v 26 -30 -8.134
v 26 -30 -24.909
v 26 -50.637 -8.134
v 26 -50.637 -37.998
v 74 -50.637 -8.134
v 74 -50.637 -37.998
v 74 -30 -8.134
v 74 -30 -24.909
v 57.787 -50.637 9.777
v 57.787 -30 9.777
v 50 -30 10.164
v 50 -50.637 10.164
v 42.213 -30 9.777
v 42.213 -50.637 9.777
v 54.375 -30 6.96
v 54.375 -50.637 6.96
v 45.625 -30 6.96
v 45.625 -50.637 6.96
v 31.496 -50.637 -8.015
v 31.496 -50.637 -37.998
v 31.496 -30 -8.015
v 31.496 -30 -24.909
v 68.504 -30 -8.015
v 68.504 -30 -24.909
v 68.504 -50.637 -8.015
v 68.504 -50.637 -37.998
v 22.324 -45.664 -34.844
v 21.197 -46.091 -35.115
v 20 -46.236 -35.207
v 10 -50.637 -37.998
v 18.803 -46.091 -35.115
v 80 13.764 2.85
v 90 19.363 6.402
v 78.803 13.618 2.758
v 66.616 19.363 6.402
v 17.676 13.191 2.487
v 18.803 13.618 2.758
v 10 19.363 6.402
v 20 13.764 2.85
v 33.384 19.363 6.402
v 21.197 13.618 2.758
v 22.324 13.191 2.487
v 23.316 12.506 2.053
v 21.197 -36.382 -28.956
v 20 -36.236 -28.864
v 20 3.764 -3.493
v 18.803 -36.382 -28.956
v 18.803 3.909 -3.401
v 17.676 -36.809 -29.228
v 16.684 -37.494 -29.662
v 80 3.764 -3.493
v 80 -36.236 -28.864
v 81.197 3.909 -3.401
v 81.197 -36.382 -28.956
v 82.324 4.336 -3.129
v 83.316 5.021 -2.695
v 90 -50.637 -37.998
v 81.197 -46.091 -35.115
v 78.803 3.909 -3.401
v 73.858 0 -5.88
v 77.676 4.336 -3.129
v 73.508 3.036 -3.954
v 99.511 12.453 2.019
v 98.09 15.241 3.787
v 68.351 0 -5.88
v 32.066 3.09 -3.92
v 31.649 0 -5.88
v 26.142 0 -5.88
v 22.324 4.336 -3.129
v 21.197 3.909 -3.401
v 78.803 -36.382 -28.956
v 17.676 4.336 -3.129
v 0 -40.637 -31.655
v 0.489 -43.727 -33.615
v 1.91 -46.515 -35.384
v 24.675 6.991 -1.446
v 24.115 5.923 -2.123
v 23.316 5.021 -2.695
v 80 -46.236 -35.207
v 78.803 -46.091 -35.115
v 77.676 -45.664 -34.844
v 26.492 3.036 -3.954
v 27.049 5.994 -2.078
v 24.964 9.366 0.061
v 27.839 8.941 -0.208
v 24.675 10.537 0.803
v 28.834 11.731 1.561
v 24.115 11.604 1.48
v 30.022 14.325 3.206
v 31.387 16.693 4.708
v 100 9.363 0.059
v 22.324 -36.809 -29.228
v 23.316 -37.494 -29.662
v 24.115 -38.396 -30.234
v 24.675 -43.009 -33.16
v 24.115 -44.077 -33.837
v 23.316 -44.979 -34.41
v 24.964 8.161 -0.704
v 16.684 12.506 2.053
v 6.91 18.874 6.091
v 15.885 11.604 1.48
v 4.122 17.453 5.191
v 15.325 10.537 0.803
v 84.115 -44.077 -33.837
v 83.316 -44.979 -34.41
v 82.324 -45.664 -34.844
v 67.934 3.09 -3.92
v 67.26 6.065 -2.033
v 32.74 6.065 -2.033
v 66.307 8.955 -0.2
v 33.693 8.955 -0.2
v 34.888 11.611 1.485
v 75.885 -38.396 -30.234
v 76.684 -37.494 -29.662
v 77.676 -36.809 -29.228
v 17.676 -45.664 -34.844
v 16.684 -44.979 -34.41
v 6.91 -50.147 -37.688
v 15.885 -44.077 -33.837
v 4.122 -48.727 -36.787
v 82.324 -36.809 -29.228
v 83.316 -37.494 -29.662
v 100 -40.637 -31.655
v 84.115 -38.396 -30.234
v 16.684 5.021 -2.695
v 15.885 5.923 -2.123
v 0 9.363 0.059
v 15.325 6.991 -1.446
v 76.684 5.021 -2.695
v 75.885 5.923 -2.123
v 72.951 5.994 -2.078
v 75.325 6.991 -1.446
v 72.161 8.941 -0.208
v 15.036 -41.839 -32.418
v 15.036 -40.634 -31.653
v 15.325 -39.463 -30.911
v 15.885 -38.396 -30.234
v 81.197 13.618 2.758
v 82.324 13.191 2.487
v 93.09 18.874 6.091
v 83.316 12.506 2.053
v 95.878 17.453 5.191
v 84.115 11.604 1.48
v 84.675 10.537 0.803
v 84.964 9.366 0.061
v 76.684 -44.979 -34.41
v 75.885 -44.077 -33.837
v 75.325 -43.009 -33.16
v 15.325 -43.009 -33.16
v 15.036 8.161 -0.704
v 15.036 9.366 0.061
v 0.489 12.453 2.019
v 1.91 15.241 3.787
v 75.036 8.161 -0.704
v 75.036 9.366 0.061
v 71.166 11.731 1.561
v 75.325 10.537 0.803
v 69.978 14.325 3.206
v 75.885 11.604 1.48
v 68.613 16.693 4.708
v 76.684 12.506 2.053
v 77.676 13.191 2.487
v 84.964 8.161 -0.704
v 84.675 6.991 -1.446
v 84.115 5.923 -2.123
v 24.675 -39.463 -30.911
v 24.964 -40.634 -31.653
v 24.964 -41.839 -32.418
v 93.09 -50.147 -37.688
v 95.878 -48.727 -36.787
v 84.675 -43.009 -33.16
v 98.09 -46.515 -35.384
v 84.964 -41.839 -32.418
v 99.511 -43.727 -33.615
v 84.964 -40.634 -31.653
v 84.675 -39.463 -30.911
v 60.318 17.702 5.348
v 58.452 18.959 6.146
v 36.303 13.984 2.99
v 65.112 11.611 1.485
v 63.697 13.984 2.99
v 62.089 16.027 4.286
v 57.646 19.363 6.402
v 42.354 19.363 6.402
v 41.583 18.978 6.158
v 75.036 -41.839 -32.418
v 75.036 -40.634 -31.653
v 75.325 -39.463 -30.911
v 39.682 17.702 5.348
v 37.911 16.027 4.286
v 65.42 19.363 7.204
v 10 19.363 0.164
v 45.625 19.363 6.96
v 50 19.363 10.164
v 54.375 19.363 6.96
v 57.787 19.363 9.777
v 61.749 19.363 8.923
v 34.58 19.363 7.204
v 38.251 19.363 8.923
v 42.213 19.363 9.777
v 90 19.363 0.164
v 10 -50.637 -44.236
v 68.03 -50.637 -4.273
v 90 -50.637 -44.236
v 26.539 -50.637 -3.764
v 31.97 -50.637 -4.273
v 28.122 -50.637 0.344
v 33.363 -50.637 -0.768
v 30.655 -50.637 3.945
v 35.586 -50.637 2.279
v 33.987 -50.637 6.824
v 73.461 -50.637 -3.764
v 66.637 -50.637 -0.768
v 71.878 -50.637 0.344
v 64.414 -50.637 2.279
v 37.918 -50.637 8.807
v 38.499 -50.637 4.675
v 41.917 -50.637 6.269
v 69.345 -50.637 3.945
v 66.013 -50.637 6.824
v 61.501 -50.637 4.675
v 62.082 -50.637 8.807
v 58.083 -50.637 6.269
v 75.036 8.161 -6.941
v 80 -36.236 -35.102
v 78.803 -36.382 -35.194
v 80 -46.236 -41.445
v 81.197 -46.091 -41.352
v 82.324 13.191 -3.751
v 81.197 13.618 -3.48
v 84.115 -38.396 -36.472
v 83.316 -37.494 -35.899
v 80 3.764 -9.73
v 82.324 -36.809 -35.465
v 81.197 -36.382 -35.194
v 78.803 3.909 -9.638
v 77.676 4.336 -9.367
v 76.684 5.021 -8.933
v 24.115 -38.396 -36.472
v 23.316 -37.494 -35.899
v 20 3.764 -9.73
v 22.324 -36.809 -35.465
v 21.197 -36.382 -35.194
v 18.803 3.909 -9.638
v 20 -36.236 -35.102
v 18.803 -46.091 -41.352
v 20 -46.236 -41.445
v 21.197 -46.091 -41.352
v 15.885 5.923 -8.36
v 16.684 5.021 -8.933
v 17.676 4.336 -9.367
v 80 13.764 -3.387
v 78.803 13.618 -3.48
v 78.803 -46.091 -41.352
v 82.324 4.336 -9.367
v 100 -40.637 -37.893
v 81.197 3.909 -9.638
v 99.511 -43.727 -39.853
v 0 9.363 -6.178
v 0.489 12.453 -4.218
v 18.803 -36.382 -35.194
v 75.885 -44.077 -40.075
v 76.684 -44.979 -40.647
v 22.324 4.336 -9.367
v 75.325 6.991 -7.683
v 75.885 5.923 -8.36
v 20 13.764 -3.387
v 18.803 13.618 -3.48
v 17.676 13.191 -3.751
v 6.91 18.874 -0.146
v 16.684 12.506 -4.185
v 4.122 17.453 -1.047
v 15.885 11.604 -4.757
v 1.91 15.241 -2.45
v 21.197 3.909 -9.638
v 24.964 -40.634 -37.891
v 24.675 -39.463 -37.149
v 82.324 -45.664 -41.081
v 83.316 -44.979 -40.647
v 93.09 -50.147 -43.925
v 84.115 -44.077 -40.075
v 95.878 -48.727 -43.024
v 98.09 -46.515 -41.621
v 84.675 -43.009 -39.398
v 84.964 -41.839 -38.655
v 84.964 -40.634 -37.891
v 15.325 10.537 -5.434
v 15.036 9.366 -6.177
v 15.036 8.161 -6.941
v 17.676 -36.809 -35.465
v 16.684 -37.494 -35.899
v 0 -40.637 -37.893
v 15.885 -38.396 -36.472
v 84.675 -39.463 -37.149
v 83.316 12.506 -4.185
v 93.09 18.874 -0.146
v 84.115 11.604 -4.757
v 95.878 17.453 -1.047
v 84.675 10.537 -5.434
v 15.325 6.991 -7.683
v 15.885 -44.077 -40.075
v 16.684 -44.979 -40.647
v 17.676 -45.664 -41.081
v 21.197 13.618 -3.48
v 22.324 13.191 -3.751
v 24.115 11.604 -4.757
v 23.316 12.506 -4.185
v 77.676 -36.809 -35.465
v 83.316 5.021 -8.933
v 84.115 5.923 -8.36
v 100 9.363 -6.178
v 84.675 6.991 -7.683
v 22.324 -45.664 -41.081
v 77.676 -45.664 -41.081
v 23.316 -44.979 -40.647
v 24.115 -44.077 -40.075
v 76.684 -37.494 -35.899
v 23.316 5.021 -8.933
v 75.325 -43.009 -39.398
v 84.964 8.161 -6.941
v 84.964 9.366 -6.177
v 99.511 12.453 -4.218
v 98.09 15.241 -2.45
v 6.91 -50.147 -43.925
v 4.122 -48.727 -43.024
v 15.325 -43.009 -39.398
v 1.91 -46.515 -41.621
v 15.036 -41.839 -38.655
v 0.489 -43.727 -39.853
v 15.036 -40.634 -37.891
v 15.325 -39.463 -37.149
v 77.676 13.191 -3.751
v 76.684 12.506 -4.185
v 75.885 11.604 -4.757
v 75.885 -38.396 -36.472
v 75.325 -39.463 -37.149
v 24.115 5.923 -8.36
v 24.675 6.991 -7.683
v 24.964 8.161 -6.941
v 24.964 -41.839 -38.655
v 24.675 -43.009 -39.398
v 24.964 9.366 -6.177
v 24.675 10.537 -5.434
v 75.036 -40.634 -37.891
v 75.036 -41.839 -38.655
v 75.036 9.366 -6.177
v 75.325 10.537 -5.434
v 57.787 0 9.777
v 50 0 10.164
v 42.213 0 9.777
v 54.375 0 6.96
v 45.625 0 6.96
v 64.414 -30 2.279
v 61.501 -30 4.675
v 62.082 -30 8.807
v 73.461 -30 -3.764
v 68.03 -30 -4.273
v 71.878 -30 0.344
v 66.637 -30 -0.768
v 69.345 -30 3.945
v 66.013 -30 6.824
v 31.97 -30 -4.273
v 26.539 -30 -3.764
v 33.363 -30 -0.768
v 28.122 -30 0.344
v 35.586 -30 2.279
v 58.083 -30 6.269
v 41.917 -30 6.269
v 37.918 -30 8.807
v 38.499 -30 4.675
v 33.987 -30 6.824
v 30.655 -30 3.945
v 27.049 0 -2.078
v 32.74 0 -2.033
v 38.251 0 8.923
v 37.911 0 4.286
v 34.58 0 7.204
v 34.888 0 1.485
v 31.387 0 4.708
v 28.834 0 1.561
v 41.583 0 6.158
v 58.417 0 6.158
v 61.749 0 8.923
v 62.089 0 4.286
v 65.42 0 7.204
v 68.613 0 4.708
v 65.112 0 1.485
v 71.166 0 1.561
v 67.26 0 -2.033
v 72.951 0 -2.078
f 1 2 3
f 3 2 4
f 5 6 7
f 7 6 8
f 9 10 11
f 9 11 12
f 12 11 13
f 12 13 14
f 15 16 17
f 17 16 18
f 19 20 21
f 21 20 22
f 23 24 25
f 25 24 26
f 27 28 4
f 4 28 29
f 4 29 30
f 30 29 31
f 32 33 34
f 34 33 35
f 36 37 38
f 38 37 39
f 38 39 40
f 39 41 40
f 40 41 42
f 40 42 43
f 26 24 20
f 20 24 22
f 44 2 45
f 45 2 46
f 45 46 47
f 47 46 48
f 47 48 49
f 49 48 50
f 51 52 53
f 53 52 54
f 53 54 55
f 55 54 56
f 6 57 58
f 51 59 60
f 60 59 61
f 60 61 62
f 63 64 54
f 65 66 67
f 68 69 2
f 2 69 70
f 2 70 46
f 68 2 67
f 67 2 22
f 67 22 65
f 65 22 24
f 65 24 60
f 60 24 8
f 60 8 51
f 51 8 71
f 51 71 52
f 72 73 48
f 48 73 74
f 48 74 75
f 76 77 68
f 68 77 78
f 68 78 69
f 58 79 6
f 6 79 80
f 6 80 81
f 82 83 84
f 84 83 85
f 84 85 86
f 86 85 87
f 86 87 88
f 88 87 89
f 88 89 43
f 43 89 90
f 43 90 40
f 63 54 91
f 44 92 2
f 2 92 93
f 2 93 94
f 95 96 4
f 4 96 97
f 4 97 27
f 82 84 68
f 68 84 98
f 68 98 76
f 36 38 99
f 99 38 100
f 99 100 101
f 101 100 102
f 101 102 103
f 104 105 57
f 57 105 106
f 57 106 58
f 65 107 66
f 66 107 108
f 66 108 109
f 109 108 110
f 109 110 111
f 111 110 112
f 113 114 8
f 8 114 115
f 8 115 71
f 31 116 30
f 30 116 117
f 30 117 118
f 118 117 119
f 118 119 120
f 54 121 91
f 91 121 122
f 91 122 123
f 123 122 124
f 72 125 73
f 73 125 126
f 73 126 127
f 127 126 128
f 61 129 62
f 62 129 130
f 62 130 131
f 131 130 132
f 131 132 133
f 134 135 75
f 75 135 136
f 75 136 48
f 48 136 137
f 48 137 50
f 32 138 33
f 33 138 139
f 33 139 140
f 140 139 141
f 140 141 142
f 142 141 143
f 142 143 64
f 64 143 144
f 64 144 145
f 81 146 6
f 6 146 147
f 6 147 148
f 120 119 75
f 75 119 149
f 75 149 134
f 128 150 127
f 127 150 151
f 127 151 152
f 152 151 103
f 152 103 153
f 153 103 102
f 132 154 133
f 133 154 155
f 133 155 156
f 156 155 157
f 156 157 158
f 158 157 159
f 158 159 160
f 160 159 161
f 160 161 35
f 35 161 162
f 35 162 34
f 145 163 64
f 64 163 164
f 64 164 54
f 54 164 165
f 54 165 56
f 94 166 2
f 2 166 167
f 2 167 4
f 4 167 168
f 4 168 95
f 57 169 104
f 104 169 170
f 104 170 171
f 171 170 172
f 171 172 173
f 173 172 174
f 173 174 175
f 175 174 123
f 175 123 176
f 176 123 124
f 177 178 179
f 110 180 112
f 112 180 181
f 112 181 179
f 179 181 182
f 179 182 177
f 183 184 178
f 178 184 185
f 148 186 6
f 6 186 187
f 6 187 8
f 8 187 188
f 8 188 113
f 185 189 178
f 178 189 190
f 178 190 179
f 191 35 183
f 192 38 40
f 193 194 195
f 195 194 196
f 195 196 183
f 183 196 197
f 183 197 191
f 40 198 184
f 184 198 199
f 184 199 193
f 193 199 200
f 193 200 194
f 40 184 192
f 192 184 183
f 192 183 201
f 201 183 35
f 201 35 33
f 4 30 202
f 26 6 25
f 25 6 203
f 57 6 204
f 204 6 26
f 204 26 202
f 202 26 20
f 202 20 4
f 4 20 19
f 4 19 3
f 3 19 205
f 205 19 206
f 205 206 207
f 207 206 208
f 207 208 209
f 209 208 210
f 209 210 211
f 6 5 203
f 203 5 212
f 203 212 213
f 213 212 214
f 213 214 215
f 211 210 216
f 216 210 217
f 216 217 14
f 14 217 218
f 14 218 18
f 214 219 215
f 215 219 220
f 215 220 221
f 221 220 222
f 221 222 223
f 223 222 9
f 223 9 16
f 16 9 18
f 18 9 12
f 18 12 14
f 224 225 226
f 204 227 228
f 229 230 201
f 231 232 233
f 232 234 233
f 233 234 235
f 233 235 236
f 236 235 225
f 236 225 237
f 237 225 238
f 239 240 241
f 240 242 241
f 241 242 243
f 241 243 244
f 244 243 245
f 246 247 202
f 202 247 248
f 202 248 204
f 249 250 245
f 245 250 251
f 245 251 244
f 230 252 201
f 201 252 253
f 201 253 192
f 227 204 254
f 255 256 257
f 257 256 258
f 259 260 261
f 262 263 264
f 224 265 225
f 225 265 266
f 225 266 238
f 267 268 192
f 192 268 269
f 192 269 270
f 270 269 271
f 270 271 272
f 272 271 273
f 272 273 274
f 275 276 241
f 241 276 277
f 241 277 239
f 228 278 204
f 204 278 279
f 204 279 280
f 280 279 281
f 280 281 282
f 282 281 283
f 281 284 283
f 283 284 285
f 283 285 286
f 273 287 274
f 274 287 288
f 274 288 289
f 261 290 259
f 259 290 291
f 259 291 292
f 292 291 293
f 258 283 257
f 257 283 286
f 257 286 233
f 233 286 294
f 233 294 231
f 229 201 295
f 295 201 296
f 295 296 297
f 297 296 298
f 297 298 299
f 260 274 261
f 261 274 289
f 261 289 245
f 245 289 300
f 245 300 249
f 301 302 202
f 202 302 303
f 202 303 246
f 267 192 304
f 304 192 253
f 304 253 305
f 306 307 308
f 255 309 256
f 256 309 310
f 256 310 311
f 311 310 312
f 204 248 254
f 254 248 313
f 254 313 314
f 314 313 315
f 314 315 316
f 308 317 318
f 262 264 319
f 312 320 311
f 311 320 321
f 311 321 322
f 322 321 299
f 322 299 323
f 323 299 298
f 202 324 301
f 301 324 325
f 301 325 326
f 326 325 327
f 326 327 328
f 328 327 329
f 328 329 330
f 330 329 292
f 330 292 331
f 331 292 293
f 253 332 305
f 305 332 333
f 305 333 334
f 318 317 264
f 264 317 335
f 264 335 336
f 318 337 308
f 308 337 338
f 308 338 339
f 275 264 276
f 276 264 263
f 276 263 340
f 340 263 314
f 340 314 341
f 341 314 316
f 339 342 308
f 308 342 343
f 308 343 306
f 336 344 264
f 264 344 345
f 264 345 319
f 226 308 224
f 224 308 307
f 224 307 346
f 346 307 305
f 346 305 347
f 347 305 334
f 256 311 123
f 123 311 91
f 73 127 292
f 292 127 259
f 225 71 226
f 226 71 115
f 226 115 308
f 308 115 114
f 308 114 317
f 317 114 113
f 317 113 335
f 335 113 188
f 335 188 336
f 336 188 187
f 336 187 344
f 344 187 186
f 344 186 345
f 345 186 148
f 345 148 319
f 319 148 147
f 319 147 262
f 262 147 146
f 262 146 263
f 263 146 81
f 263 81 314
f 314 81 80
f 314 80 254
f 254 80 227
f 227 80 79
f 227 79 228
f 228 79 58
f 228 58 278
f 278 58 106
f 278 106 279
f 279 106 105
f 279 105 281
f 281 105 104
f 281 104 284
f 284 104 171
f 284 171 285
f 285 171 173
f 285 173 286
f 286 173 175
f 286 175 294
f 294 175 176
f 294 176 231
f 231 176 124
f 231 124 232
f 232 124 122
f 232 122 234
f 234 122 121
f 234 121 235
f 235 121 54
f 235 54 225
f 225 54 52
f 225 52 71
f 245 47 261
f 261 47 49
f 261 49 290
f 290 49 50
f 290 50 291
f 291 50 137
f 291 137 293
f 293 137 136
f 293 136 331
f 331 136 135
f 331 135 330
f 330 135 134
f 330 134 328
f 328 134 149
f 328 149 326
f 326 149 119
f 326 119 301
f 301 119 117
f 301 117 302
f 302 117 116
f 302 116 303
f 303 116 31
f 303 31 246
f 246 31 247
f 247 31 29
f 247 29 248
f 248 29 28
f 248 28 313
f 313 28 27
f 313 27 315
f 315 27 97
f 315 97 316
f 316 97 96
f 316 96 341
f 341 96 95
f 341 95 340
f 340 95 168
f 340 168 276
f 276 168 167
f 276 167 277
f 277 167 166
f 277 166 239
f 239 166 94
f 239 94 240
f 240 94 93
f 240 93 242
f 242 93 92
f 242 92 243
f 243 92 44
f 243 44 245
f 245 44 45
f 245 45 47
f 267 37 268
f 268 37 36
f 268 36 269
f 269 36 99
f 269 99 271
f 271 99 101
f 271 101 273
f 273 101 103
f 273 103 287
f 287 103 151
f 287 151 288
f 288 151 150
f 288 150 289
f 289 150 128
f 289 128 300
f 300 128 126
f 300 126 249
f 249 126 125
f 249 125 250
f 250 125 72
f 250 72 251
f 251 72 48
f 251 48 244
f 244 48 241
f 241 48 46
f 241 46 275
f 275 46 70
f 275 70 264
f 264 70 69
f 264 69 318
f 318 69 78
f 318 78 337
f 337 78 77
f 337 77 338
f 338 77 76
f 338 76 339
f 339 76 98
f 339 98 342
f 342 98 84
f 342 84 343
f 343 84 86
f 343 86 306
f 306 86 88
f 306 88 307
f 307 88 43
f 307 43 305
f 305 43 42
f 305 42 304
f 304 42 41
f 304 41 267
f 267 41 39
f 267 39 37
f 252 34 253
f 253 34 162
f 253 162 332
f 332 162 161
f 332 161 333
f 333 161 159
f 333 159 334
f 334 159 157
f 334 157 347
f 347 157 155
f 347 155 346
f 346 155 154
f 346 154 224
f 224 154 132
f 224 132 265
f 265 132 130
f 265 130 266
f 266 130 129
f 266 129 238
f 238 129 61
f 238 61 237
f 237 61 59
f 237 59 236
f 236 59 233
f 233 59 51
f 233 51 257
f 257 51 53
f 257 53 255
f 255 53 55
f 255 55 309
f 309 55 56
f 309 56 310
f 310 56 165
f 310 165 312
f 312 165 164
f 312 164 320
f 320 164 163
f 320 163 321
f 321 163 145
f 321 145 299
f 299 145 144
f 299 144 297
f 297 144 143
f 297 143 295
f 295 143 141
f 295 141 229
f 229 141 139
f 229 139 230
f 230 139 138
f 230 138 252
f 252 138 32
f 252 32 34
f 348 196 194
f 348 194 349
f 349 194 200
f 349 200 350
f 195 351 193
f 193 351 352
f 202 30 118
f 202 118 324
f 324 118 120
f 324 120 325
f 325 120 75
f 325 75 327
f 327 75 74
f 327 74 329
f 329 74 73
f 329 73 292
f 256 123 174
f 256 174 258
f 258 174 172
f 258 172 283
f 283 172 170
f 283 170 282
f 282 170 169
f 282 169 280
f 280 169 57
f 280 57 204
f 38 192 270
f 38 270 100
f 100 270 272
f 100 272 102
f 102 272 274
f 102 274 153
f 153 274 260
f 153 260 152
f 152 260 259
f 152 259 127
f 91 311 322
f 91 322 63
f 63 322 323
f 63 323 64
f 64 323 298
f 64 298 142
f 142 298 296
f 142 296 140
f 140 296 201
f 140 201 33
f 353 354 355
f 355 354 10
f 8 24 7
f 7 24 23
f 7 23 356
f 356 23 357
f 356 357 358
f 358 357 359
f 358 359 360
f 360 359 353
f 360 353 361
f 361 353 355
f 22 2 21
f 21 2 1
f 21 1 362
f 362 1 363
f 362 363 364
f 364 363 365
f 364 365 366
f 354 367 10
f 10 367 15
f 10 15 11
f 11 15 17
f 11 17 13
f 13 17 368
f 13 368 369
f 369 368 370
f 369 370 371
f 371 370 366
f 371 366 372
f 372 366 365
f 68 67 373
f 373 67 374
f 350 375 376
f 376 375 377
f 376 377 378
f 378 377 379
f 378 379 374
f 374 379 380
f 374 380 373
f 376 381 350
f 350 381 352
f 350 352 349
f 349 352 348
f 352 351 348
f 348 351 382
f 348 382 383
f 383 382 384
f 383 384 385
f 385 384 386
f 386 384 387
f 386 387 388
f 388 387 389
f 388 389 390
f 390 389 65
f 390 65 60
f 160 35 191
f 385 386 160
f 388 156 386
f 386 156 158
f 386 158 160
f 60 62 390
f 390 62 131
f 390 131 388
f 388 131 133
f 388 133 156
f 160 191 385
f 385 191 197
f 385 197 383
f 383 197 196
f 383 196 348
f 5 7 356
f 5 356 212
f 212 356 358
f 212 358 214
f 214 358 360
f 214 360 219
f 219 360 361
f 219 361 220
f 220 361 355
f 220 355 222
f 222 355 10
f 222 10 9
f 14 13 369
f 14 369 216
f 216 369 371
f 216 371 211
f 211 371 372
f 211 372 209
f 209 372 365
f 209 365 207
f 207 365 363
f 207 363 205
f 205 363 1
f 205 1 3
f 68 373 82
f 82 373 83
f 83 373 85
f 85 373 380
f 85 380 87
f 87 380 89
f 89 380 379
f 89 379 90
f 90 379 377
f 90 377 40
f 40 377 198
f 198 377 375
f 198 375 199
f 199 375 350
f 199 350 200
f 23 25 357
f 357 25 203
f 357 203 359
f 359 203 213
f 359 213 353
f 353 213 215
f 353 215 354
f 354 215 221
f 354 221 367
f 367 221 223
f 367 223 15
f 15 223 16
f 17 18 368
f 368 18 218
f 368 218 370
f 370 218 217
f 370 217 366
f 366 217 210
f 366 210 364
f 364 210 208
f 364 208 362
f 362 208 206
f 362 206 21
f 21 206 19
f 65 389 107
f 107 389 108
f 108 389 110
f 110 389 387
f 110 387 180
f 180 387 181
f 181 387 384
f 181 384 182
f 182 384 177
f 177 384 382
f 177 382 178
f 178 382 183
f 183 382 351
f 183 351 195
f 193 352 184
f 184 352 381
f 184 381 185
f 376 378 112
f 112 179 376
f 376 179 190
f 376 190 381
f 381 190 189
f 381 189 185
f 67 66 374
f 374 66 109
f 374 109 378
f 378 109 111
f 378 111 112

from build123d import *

# Parameters (mm, degrees)
BOSS_EXTRUDE1_DEPTH = 100
SKETCH2_R           = 5
CUT_EXTRUDE1_DEPTH  = 61
BOSS_EXTRUDE3_DEPTH = 70
BOSS_EXTRUDE4_REACH = 124.997
SKETCH4_W           = 48
SKETCH4_H           = 70
CUT_EXTRUDE2_REACH  = 131.834
FILLET1_R           = 10
CUT_EXTRUDE3_DEPTH  = 56
FILLET3_R           = 18
FILLET4_R           = 15
FILLET5_R           = 15


with BuildPart() as part:
    # Sketch1 → Boss-Extrude1 (new body)
    with BuildSketch(Plane(origin=(0, 0, 0), x_dir=(0, 0, -1), z_dir=(1, 0, 0))):
        Polygon((9.31960102, -5.422823355), (-6.40194197, 19.363300607), (-0.164443236, 19.363300607), (44.235722397, -50.636699393), (37.998223663, -50.636699393), (29.951005386, -37.94969088), align=None)
    extrude(amount=BOSS_EXTRUDE1_DEPTH)

    # Sketch2 → Cut-Extrude1 (cut)
    with BuildSketch(Plane(origin=(0, 0, -44.235722397), x_dir=(-1, 0, 0), z_dir=(0, 0, -1))):
        with Locations(Location((-80, -41.23638567, 0), (0, 0, 270))):
            Circle(SKETCH2_R)
        with Locations(Location((-20, -41.23638567, 0), (0, 0, 270))):
            Circle(SKETCH2_R)
        with Locations(Location((-20, 8.76361433, 0), (0, 0, 270))):
            Circle(SKETCH2_R)
        with Locations(Location((-80, 8.76361433, 0), (0, 0, 270))):
            Circle(SKETCH2_R)
    extrude(amount=-CUT_EXTRUDE1_DEPTH, mode=Mode.SUBTRACT)

    # Boss-Extrude4: up to this face of the body (flat: up to its plane)
    boss_extrude4_end = Plane(part.part.faces().sort_by_distance((50, -15.608520887, -15.780267556))[0])
    # Sketch4 → Boss-Extrude4 (add, up to the picked face)
    with BuildSketch(Plane(origin=(0, 0, 6.40194197), x_dir=(-1, 0, 0), z_dir=(0, 0, -1)), mode=Mode.PRIVATE) as boss_extrude4_sk1:
        with Locations((-50, -15.636699393)):
            Rectangle(SKETCH4_W, SKETCH4_H)
    boss_extrude4_tool1 = split(extrude(boss_extrude4_sk1.sketch, amount=BOSS_EXTRUDE4_REACH, mode=Mode.PRIVATE), bisect_by=boss_extrude4_end, keep=Keep.BOTH, mode=Mode.PRIVATE)


with BuildPart() as body_2:
    # Sketch3 → Boss-Extrude3 (new body)
    with BuildSketch(Plane(origin=(0, 19.363300607, 0), x_dir=(1, 0, 0), z_dir=(0, 1, 0))):
        with BuildLine():
            Line((26, -6.40194197), (74, -6.40194197))
            ThreePointArc((74, -6.40194197), (50, -10.164443236), (26, -6.40194197))
        make_face()
    extrude(amount=-BOSS_EXTRUDE3_DEPTH)


with BuildPart() as part_1:
    add(part.part)

    add(body_2.part)  # Boss-Extrude4 merges body 2
    add(boss_extrude4_tool1.solids().sort_by(Axis((50, -15.636699, 6.401942), (0, 0, -1)))[0])

    # Cut-Extrude2: up to this face of the body (flat: up to its plane)
    cut_extrude2_end = Plane(part_1.part.faces().sort_by_distance((87.661220736, -15.580052964, -15.762210692))[0])
    # Sketch5 → Cut-Extrude2 (cut, up to the picked face)
    with BuildSketch(Plane.XZ.offset(50.636699393), mode=Mode.PRIVATE) as cut_extrude2_sk1:
        with BuildLine():
            Line((68.503998914, -37.998223663), (31.496001086, -37.998223663))
            Line((31.496001086, -37.998223663), (31.496001086, 4.779601344))
            ThreePointArc((31.496001086, 4.779601344), (50, 7.087022557), (68.503998914, 4.779601344))
            Line((68.503998914, 4.779601344), (68.503998914, -37.998223663))
        make_face()
    cut_extrude2_tool1 = split(extrude(cut_extrude2_sk1.sketch, amount=-CUT_EXTRUDE2_REACH, mode=Mode.PRIVATE), bisect_by=cut_extrude2_end, keep=Keep.BOTH, mode=Mode.PRIVATE)
    add(cut_extrude2_tool1.solids().sort_by(Axis((50, -50.636699, -15.832469), (0, 1, 0)))[0], mode=Mode.SUBTRACT)

    # Fillet1
    # the kernel refuses this fillet: 10 mm, written as the material it takes off along each edge
    with BuildSketch(Plane(origin=(100, -50.636699393, -69.235722397), x_dir=(-1, 0, 0), z_dir=(0, 0, 1)), Plane(origin=(100, 19.363300607, 31.40194197), x_dir=(-1, 0, 0), z_dir=(0, 0, -1))) as fillet1_piece_1:
        with BuildLine():
            CenterArc((FILLET1_R, -FILLET1_R), FILLET1_R, 90, 90)
            Line((0, -FILLET1_R), (0, 0))
            Line((0, 0), (FILLET1_R, 0))
        make_face()
    extrude(amount=56.237498734, mode=Mode.SUBTRACT)
    with BuildSketch(Plane(origin=(0, -50.636699393, -69.235722397), x_dir=(1, 0, 0), z_dir=(0, 0, 1)), Plane(origin=(0, 19.363300607, 31.40194197), x_dir=(1, 0, 0), z_dir=(0, 0, -1))) as fillet1_piece_2:
        with BuildLine():
            CenterArc((FILLET1_R, FILLET1_R), FILLET1_R, 180, 90)
            Line((0, FILLET1_R), (0, 0))
            Line((0, 0), (FILLET1_R, 0))
        make_face()
    extrude(amount=56.237498734, mode=Mode.SUBTRACT)

    # Sketch7 → Cut-Extrude3 (cut)
    with BuildSketch(Plane(origin=(74, 0, 0), x_dir=(0, 0, -1), z_dir=(1, 0, 0))):
        Polygon((5.879968804, 0), (-34.029101203, 0), (-34.029101203, -30), (24.908611218, -30), align=None)
    extrude(amount=-CUT_EXTRUDE3_DEPTH, mode=Mode.SUBTRACT)

    # Fillet3
    # the kernel refuses this fillet: 18 mm, written as the material it takes off along each edge
    with BuildSketch(Plane(origin=(74, 60.763896609, 6.40194197), x_dir=(-0.9790132085588953, 0, 0.20379680435967867), z_dir=(0, -1, 0))) as fillet3_piece_1_section:
        with BuildLine():
            CenterArc((14.659822692, 17.8993972), FILLET3_R, 191.759074187, 84.301431918)
            Line((-2.962415062, 14.231054722), (0, 0))
            ThreePointArc((0, 0), (8.2801192, -0.43832682), (16.560238401, 0))
        make_face()
    fillet3_piece_1 = extrude(amount=102.16449261, mode=Mode.PRIVATE)
    fillet3_piece_1 = split(fillet3_piece_1, bisect_by=Plane(origin=(69.993439145, 10.97404697, 1.080738384), z_dir=(0, -0.5356273864218708, 0.8444544409942292)), keep=Keep.TOP, mode=Mode.PRIVATE)
    add(fillet3_piece_1, mode=Mode.SUBTRACT)
    with BuildSketch(Plane(origin=(74, 11.400596002, 6.40194197), x_dir=(-0.9790132085588953, 0, 0.2037968043596786), z_dir=(0, -1, 0))) as fillet3_piece_2_section:
        with BuildLine():
            CenterArc((14.659822692, 17.8993972), FILLET3_R, 191.759074187, 84.301431918)
            Line((-2.962415062, 14.231054722), (0, 0))
            ThreePointArc((0, 0), (8.2801192, -0.43832682), (16.560238401, 0))
        make_face()
    fillet3_piece_2 = extrude(amount=103.437891396, mode=Mode.PRIVATE)
    fillet3_piece_2 = split(fillet3_piece_2, bisect_by=Plane(origin=(70.341248141, 8.727743457, -0.34406516), z_dir=(0, -0.5356273864218708, 0.8444544409942292)), keep=Keep.TOP, mode=Mode.PRIVATE)
    add(fillet3_piece_2, mode=Mode.SUBTRACT)
    with BuildSketch(Plane(origin=(26, 11.400596002, 6.40194197), x_dir=(0, 0, -1), z_dir=(0, -1, 0))) as fillet3_piece_3_section:
        with BuildLine():
            CenterArc((14.536121267, 18), FILLET3_R, 185.698568082, 84.301431918)
            ThreePointArc((-3.374923665, 16.212692131), (-2.116589579, 8.01701646), (0, 0))
            Line((0, 0), (14.536121267, 0))
        make_face()
    fillet3_piece_3 = extrude(amount=103.437891396, mode=Mode.PRIVATE)
    fillet3_piece_3 = split(fillet3_piece_3, bisect_by=Plane(origin=(29.658751859, 8.727743457, -0.344065159), z_dir=(0, -0.5356273864218708, 0.8444544409942292)), keep=Keep.TOP, mode=Mode.PRIVATE)
    add(fillet3_piece_3, mode=Mode.SUBTRACT)
    with BuildSketch(Plane(origin=(26, 60.763896609, 6.40194197), x_dir=(0, 0, -1), z_dir=(0, -1, 0))) as fillet3_piece_4_section:
        with BuildLine():
            CenterArc((14.536121267, 18), FILLET3_R, 185.698568082, 84.301431918)
            ThreePointArc((-3.374923665, 16.212692131), (-2.116589579, 8.01701646), (0, 0))
            Line((0, 0), (14.536121267, 0))
        make_face()
    fillet3_piece_4 = extrude(amount=102.16449261, mode=Mode.PRIVATE)
    fillet3_piece_4 = split(fillet3_piece_4, bisect_by=Plane(origin=(30.006560852, 10.974046968, 1.080738383), z_dir=(0, -0.5356273864218708, 0.8444544409942292)), keep=Keep.TOP, mode=Mode.PRIVATE)
    add(fillet3_piece_4, mode=Mode.SUBTRACT)

    # Fillet4
    fillet4_edges = [part_1.edges().sort_by_distance(p)[0] for p in [
        (68.503998914, -40.318349696, 4.779601344),
        (31.496001086, -40.318349696, 4.779601344),
    ]]
    fillet(fillet4_edges, radius=FILLET4_R)

    # Fillet5
    # the kernel refuses this fillet: 15 mm, written as the material it adds along each edge
    with BuildSketch(Plane(origin=(68.503998914, 0, 4.779601344), x_dir=(0, 0, -1), z_dir=(0, 1, 0))) as fillet5_piece_1_section:
        with BuildLine():
            CenterArc((12.794390285, 15), FILLET5_R, 183.32861315, 86.67138685)
            ThreePointArc((-2.18030389, 14.12906122), (-1.426006953, 7.012703672), (0, 0))
            Line((0, 0), (12.794390285, 0))
        make_face()
    fillet5_piece_1 = extrude(amount=52.546307376, mode=Mode.PRIVATE)
    fillet5_piece_1 = split(fillet5_piece_1, bisect_by=Plane(origin=(64.873583949, 12.366179926, -4.273747009), z_dir=(0, -0.5356273864218707, 0.8444544409942292)), keep=Keep.TOP, mode=Mode.PRIVATE)
    fillet5_piece_1 = split(fillet5_piece_1, bisect_by=Plane(origin=(64.873583949, 19.363300607, 3.531905566), z_dir=(0, -1, 0)), keep=Keep.TOP, mode=Mode.PRIVATE)
    add(fillet5_piece_1)
    with BuildSketch(Plane(origin=(31.496001086, 0, 4.779601344), x_dir=(0.9883021898179025, 0, 0.15250830010572736), z_dir=(0, 1, 0))) as fillet5_piece_2_section:
        with BuildLine():
            CenterArc((12.873282134, 14.932348438), FILLET5_R, 188.772314309, 86.67138685)
            Line((-1.951250713, 12.644723937), (0, 0))
            ThreePointArc((0, 0), (7.148148292, -0.339830278), (14.296296583, 0))
        make_face()
    fillet5_piece_2 = extrude(amount=52.546307376, mode=Mode.PRIVATE)
    fillet5_piece_2 = split(fillet5_piece_2, bisect_by=Plane(origin=(35.126416052, 12.366179929, -4.273747008), z_dir=(0, -0.5356273864218707, 0.8444544409942292)), keep=Keep.TOP, mode=Mode.PRIVATE)
    fillet5_piece_2 = split(fillet5_piece_2, bisect_by=Plane(origin=(35.126416052, 19.363300607, 3.531905566), z_dir=(0, -1, 0)), keep=Keep.TOP, mode=Mode.PRIVATE)
    add(fillet5_piece_2)


solid = part_1.part
